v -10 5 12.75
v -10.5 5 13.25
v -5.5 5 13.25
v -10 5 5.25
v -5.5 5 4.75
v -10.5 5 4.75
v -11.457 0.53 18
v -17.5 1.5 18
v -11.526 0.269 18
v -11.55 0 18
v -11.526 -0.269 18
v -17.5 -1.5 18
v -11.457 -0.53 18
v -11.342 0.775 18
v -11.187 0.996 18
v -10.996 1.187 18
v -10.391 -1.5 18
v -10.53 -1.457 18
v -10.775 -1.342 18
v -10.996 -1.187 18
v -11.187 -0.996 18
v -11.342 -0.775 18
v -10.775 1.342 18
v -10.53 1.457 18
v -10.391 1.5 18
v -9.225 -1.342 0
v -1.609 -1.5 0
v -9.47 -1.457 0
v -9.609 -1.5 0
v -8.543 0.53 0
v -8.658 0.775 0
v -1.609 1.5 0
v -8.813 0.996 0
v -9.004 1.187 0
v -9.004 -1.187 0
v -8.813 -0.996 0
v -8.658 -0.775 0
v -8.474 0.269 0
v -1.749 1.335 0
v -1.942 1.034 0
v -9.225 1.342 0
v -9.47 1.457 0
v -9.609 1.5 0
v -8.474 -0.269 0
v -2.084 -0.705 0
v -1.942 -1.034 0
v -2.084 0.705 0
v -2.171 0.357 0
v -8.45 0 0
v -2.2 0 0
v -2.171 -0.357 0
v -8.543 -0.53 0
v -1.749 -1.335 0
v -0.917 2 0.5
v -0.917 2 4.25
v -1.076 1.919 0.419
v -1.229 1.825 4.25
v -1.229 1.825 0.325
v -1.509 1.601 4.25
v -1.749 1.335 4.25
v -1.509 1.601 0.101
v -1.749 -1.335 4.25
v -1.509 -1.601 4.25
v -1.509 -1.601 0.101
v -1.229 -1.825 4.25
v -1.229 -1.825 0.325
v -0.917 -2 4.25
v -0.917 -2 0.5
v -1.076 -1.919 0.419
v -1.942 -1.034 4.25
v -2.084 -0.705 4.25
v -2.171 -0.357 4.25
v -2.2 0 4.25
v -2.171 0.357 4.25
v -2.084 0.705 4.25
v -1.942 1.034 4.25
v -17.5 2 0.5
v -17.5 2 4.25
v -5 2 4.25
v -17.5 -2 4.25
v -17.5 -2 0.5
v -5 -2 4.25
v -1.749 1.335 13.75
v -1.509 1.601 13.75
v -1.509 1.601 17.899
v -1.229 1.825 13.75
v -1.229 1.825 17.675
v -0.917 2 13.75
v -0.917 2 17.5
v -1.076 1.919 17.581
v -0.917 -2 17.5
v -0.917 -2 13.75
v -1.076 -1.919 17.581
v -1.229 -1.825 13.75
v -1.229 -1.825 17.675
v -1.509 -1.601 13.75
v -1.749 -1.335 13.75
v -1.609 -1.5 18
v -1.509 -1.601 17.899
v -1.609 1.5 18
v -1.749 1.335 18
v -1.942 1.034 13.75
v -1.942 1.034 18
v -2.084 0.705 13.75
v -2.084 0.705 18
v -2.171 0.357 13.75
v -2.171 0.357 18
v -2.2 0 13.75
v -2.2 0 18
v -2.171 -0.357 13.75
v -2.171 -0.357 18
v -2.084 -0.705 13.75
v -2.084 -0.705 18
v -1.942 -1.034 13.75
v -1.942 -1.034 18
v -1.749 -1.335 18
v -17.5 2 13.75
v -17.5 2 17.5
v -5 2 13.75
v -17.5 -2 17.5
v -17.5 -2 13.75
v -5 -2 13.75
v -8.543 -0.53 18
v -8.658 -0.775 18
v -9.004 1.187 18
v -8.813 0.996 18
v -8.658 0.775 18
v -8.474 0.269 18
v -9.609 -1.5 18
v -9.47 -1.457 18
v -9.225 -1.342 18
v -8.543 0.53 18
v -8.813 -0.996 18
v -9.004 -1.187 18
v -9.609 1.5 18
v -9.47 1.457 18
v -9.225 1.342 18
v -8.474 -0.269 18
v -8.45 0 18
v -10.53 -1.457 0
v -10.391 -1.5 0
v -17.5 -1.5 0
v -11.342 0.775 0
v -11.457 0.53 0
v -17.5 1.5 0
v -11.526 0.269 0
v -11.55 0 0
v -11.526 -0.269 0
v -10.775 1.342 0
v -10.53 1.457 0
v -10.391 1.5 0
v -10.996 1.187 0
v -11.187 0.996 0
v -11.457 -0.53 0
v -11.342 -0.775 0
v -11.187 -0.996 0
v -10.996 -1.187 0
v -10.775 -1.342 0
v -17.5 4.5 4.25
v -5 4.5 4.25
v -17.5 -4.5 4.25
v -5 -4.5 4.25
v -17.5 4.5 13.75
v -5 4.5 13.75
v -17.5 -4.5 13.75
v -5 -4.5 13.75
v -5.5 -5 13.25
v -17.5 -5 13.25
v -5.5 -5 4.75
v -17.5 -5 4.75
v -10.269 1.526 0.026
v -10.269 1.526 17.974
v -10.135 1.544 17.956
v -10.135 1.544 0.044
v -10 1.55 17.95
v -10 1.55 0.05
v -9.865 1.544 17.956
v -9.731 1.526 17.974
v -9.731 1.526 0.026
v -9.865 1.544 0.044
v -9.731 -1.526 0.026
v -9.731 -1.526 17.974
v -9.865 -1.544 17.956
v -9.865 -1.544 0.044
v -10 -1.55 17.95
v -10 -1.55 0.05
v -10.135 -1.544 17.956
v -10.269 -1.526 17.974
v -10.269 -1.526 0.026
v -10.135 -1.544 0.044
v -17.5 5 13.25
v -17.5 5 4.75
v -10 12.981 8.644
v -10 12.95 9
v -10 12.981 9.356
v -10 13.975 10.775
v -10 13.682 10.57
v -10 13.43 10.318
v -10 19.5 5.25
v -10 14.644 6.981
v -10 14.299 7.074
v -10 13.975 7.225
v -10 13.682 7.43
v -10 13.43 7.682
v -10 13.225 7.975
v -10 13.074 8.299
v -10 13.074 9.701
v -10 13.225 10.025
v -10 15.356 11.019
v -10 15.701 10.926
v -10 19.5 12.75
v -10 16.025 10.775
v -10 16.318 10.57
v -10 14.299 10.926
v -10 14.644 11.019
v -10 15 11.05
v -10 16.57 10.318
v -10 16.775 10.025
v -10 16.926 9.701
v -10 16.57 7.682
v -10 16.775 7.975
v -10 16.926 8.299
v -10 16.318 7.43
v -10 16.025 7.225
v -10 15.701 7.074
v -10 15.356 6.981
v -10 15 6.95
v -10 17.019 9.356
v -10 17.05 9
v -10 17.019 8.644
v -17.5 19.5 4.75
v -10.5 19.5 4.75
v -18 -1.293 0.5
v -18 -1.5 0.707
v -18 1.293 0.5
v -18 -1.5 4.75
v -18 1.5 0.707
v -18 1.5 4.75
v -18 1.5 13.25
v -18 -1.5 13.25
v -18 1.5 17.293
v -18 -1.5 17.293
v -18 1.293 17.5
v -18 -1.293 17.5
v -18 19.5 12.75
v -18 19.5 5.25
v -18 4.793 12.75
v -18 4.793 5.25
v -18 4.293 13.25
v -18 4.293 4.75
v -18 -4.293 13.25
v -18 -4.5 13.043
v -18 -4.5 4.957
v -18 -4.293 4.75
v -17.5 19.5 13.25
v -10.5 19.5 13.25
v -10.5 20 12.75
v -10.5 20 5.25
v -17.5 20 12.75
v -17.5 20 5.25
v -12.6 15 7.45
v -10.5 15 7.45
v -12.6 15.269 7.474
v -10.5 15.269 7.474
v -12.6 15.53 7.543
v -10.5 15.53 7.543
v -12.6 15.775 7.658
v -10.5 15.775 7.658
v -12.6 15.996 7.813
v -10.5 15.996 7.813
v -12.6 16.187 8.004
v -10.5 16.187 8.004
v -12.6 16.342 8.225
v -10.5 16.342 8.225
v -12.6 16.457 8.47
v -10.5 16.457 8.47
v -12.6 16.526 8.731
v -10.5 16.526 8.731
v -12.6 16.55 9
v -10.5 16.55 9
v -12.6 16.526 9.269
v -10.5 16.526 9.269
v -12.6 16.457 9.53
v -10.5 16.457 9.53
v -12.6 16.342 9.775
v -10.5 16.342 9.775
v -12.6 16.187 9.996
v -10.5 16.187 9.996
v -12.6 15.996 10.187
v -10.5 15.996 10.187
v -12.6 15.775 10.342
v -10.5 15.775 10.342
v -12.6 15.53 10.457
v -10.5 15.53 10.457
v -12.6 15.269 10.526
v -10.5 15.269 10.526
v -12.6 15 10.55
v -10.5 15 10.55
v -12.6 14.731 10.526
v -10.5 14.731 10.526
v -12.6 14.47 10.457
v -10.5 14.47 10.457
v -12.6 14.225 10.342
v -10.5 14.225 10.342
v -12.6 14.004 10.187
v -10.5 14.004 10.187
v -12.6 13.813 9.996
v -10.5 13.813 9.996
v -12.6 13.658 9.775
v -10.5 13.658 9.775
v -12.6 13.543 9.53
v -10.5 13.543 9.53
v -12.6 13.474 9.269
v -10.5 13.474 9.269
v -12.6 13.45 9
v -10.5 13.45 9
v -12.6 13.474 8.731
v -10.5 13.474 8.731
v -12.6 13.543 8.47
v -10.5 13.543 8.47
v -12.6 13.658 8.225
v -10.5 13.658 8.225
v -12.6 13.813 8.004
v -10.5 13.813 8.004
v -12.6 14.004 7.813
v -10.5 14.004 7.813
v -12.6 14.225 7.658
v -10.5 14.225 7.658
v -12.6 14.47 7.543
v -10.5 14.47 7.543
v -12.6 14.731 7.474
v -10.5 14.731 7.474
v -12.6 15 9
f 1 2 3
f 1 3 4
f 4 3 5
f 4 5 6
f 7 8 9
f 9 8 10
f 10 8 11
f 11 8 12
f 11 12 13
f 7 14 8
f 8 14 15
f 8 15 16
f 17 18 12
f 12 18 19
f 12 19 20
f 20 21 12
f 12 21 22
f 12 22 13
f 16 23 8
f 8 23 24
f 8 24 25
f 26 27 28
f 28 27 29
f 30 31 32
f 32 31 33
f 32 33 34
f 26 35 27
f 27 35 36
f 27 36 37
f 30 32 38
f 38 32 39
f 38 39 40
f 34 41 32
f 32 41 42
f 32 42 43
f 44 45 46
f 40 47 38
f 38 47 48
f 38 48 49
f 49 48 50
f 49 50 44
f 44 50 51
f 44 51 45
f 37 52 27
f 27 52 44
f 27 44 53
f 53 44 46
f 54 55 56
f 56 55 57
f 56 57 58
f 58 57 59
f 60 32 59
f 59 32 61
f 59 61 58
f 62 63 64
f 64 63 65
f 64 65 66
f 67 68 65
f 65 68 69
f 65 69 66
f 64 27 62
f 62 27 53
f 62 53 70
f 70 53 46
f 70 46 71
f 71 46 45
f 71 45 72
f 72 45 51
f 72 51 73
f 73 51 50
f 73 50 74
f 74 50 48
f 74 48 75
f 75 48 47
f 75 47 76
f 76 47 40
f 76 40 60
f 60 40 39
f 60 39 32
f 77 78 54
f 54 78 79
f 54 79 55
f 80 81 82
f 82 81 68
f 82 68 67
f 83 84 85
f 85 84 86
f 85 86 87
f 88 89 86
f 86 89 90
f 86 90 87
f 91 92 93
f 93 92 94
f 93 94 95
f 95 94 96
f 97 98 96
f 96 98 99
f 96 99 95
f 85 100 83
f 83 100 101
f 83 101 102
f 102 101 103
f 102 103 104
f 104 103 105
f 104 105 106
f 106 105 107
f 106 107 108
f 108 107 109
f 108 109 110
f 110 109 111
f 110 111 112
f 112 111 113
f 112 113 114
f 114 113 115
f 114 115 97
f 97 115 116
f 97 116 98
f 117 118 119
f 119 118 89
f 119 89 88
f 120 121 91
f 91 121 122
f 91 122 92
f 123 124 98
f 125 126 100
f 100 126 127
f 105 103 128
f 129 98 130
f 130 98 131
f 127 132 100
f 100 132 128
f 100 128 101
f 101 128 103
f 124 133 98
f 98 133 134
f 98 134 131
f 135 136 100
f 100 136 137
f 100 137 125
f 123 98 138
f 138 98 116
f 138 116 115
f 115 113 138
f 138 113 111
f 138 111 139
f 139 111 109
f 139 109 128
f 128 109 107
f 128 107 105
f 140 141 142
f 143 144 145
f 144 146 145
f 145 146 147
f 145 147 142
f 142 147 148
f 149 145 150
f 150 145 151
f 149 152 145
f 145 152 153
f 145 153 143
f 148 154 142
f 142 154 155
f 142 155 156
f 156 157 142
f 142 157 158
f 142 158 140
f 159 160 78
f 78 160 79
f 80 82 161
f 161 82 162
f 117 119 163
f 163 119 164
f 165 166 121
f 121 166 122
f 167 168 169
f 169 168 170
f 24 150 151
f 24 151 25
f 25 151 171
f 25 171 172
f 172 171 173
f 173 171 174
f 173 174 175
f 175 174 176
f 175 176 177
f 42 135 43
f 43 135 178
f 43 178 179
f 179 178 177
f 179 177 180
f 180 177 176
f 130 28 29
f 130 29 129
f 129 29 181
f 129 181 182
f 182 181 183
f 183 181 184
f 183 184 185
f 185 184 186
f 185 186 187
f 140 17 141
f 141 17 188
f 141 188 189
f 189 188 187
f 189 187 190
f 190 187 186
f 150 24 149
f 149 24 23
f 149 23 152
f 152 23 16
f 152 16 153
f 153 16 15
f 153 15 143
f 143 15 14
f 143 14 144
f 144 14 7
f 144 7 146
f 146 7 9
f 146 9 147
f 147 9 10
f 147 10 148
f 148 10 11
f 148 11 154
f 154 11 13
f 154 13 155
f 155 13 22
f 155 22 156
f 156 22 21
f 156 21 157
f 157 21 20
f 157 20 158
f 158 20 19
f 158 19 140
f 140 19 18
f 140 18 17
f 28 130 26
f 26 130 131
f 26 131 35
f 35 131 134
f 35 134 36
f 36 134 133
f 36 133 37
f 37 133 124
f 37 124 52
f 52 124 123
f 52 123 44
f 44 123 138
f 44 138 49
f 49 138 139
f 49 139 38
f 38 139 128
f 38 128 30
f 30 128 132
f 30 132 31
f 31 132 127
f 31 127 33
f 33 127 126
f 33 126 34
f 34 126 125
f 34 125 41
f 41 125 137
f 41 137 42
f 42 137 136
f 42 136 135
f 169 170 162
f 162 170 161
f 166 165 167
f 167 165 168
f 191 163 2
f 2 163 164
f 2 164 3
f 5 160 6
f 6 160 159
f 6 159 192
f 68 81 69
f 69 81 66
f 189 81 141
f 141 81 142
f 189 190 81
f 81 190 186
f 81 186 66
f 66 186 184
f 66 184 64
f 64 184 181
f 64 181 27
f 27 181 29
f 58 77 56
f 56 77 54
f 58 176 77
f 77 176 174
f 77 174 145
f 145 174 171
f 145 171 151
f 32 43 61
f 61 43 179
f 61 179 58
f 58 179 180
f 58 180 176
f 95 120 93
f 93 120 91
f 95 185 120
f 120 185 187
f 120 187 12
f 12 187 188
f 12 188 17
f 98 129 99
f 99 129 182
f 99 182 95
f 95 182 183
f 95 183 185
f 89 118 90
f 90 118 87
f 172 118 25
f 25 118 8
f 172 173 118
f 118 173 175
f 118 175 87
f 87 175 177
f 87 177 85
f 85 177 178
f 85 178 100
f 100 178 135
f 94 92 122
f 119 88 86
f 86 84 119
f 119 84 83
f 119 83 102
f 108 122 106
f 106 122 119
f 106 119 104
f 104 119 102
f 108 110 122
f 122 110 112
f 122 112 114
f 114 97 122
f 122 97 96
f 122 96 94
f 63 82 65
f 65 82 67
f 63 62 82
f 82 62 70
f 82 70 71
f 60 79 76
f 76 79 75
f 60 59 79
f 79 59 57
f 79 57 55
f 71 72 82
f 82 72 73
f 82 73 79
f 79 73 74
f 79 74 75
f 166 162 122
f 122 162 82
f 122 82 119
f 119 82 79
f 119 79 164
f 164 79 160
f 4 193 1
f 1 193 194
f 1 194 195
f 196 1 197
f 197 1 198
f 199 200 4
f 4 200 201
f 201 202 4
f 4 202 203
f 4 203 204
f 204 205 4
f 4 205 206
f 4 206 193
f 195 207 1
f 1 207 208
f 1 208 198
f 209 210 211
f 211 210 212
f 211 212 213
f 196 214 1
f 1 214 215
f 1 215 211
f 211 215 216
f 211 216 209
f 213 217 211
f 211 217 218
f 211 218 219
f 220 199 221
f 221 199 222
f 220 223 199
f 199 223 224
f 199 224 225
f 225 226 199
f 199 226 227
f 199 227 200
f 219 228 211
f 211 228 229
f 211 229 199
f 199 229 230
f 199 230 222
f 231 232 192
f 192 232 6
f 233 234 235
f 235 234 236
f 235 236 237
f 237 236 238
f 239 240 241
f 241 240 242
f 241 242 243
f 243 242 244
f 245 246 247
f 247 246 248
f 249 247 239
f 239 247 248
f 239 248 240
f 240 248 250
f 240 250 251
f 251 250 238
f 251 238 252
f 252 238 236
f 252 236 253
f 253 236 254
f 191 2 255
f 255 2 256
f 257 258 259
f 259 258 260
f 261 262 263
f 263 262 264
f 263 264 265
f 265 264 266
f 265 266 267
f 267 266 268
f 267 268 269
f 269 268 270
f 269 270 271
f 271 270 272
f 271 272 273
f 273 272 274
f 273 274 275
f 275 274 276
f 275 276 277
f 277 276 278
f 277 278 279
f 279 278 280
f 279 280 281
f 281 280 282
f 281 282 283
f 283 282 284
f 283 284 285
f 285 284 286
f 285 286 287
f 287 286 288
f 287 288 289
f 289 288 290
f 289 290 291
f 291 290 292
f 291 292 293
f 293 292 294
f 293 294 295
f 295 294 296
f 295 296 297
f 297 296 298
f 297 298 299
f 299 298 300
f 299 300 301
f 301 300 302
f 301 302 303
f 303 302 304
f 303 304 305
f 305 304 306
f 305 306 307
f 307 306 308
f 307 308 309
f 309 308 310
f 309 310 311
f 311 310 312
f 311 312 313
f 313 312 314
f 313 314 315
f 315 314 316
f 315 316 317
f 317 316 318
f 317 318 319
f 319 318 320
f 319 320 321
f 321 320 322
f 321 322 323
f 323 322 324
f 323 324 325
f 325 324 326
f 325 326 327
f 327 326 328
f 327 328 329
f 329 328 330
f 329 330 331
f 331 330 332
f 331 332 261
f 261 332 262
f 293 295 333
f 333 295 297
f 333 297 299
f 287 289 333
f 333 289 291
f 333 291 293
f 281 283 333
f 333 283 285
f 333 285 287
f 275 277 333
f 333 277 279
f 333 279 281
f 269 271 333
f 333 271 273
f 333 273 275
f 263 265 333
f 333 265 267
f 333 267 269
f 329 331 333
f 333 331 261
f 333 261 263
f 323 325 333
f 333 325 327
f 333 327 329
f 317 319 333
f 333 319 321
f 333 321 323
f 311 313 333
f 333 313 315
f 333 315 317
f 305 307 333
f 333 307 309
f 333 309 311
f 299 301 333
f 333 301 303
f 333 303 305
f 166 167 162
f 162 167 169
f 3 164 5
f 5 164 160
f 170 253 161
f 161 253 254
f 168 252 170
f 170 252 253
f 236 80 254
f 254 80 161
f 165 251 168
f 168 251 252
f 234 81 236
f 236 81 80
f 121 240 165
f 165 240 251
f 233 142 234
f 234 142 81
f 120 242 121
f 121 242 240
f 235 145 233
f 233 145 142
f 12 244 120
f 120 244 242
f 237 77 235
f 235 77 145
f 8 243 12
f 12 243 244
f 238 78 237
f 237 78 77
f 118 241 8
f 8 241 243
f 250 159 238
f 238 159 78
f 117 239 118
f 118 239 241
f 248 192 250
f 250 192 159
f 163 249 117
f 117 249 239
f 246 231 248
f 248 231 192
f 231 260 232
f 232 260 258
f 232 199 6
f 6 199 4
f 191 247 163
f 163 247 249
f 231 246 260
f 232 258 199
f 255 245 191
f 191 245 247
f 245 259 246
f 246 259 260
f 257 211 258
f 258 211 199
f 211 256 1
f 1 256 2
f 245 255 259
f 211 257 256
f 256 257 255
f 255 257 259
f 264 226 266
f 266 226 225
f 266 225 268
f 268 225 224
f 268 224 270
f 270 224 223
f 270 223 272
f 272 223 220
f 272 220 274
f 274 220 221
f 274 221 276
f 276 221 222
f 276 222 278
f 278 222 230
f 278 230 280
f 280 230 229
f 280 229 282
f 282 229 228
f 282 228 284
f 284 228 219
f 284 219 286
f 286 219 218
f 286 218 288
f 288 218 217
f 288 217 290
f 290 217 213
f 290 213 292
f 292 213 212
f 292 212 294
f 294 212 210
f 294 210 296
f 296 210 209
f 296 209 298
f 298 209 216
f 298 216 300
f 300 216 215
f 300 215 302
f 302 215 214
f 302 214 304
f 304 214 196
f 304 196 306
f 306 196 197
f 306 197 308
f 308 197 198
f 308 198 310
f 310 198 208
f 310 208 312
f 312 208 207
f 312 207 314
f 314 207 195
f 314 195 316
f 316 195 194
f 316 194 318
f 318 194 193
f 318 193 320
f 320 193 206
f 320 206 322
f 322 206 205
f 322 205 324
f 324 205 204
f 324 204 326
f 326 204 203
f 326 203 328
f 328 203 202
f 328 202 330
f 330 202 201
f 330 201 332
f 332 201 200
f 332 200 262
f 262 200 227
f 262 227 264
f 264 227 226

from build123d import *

# Parameters (mm, degrees)
BOSS_EXTRUDE1_DEPTH  = 18
BOSS_EXTRUDE2_START  = -49.083485
SKETCH2_W            = 9.5
SKETCH2_H            = 10
BOSS_EXTRUDE2_DEPTH  = 49.083485
M3_CLEARANCE_HOLE1_D = 3.1
BOSS_EXTRUDE3_DEPTH  = 1.5
CHAMFER1_SIZE        = 0.5
SKETCH8_W            = 5
SKETCH8_H            = 9.5
CUT_EXTRUDE1_DEPTH   = 56.463952257
SKETCH9_W            = 8
SKETCH9_H            = 8.5
BOSS_EXTRUDE4_DEPTH  = 15
SKETCH13_W           = 33.5
SKETCH13_H           = 18
CUT_EXTRUDE5_DEPTH   = 61.010415763
SKETCH10_R           = 1.55
CUT_EXTRUDE6_DEPTH   = 2.6
CHAMFER2_SIZE        = 0.5


with BuildPart() as part:
    # Sketch1 → Boss-Extrude1 (new body)
    with BuildSketch(Plane.XY):
        with BuildLine():
            Line((-0.916515139, 2), (-50, 2))
            Line((-50, 2), (-50, -2))
            Line((-50, -2), (-0.916515139, -2))
            ThreePointArc((-0.916515139, -2), (-2.2, 0), (-0.916515139, 2))
        make_face()
    extrude(amount=BOSS_EXTRUDE1_DEPTH)

    # Sketch2 → Boss-Extrude2 (add)
    with BuildSketch(Plane.ZY.offset(50).offset(BOSS_EXTRUDE2_START)):
        with Locations((9, 0)):
            Rectangle(SKETCH2_W, SKETCH2_H)
    extrude(amount=BOSS_EXTRUDE2_DEPTH)

    # M3 Clearance Hole1 (through all)
    with Locations(Plane.XY.offset(18)):
        with Locations((-10, 0)):
            Hole(M3_CLEARANCE_HOLE1_D / 2)

    # Sketch7 → Boss-Extrude3 (add)
    with BuildSketch(Plane.ZY.offset(50)):
        Polygon((0, 2), (0, -2), (4.25, -2), (4.25, -5), (13.75, -5), (13.75, -2), (18, -2), (18, 2), (13.75, 2), (13.75, 5), (4.25, 5), (4.25, 2), align=None)
    extrude(amount=BOSS_EXTRUDE3_DEPTH)

    # Chamfer1
    # the kernel refuses this chamfer: 0.5 mm, written as the material it takes off along each edge
    with BuildSketch(Plane(origin=(-52.785841494, -2, 18), x_dir=(0, 0.9996219169112968, 0.027495876610589075), z_dir=(1, 0, 0)), Plane(origin=(0.369326355, 2, 0), x_dir=(0, 0.027495876610586494, 0.9996219169112968), z_dir=(-1, 0, 0))) as chamfer1_piece_1:
        Polygon((CHAMFER1_SIZE * 0.999621916911, -CHAMFER1_SIZE * 0.0274958766106), (-CHAMFER1_SIZE * 0.0274958766106, -CHAMFER1_SIZE * 0.999621916911), (0, 0), align=None)
    extrude(amount=53.155167849, mode=Mode.SUBTRACT)
    with BuildSketch(Plane(origin=(0.369326494, -5, 4.25), x_dir=(0, -0.027495876610585647, 0.9996219169112968), z_dir=(-1, 0, 0)), Plane(origin=(-52.785841494, 5, 4.25), x_dir=(0, 0.027495876610585647, 0.9996219169112968), z_dir=(1, 0, 0)), Plane(origin=(0.369326494, -5, 13.75), x_dir=(0, 0.9996219169112968, 0.027495876610585647), z_dir=(-1, 0, 0))) as chamfer1_piece_2:
        Polygon((CHAMFER1_SIZE * 0.999621916911, CHAMFER1_SIZE * 0.0274958766106), (-CHAMFER1_SIZE * 0.0274958766106, CHAMFER1_SIZE * 0.999621916911), (0, 0), align=None)
    extrude(amount=53.155167988, mode=Mode.SUBTRACT)
    with BuildSketch(Plane(origin=(-52.785841494, 5, 13.75), x_dir=(0, 0.027495876610585647, -0.9996219169112968), z_dir=(1, 0, 0))) as chamfer1_piece_3:
        Polygon((CHAMFER1_SIZE * 0.999621916911, -CHAMFER1_SIZE * 0.0274958766106), (-CHAMFER1_SIZE * 0.0274958766106, -CHAMFER1_SIZE * 0.999621916911), (0, 0), align=None)
    extrude(amount=53.155167988, mode=Mode.SUBTRACT)
    with BuildSketch(Plane(origin=(0.369326355, -2, 0), x_dir=(0, -0.027495876610586494, 0.9996219169112968), z_dir=(-1, 0, 0)), Plane(origin=(0.369326355, 2, 18), x_dir=(0, 0.027495876610586414, -0.9996219169112968), z_dir=(-1, 0, 0))) as chamfer1_piece_4:
        Polygon((CHAMFER1_SIZE * 0.999621916911, CHAMFER1_SIZE * 0.0274958766106), (-CHAMFER1_SIZE * 0.0274958766106, CHAMFER1_SIZE * 0.999621916911), (0, 0), align=None)
    extrude(amount=53.155167849, mode=Mode.SUBTRACT)

    # Sketch8 → Cut-Extrude1 (cut, through all)
    with BuildSketch(Plane(origin=(0, 5, 0), x_dir=(1, 0, 0), z_dir=(0, 1, 0))):
        with Locations((-2.5, -9)):
            Rectangle(SKETCH8_W, SKETCH8_H)
    extrude(amount=-CUT_EXTRUDE1_DEPTH, mode=Mode.SUBTRACT)

    # Sketch9 → Boss-Extrude4 (add)
    with BuildSketch(Plane(origin=(0, 5, 0), x_dir=(1, 0, 0), z_dir=(0, 1, 0))):
        with Locations((-14, -9)):
            Rectangle(SKETCH9_W, SKETCH9_H)
    extrude(amount=BOSS_EXTRUDE4_DEPTH)

    # Sketch13 → Cut-Extrude5 (cut, through all)
    with BuildSketch(Plane(origin=(0, 20, 0), x_dir=(1, 0, 0), z_dir=(0, 1, 0))):
        with Locations((-34.75, -9)):
            Rectangle(SKETCH13_W, SKETCH13_H)
    extrude(amount=-CUT_EXTRUDE5_DEPTH, mode=Mode.SUBTRACT)

    # Sketch10 → Cut-Extrude6 (cut)
    with BuildSketch(Plane.ZY.offset(10)):
        with Locations((9, 15)):
            Circle(SKETCH10_R)
    extrude(amount=CUT_EXTRUDE6_DEPTH, mode=Mode.SUBTRACT)

    # Chamfer2
    chamfer2_edges = [part.edges().sort_by_distance(p)[0] for p in [
        (-5, -5, 9),
        (-5, 5, 9),
        (-10, 12.5, 13.25),
        (-10, 12.5, 4.75),
        (-18, 12.5, 4.75),
        (-18, 12.5, 13.25),
        (-10, 20, 9),
        (-14, 20, 4.75),
        (-18, 20, 9),
        (-14, 20, 13.25),
        (-18, -3.25, 4.25),
        (-18, -4.75, 4.5),
        (-18, -1.75, 0.25),
        (-18, -4.75, 13.5),
        (-18, -3.25, 13.75),
        (-18, -1.75, 17.75),
        (-18, 1.75, 0.25),
        (-18, 4.75, 4.5),
        (-18, 3.25, 4.25),
        (-18, 1.75, 17.75),
        (-18, 3.25, 13.75),
        (-18, 4.75, 13.5),
        (-18, 2, 15.625),
        (-18, -2, 15.625),
        (-18, -5, 9),
        (-18, -2, 2.375),
        (-18, 0, 0),
        (-18, 2, 2.375),
        (-18, 0, 18),
        (-10, 15, 7.45),
    ]]
    chamfer(chamfer2_edges, length=CHAMFER2_SIZE)


solid = part.part
